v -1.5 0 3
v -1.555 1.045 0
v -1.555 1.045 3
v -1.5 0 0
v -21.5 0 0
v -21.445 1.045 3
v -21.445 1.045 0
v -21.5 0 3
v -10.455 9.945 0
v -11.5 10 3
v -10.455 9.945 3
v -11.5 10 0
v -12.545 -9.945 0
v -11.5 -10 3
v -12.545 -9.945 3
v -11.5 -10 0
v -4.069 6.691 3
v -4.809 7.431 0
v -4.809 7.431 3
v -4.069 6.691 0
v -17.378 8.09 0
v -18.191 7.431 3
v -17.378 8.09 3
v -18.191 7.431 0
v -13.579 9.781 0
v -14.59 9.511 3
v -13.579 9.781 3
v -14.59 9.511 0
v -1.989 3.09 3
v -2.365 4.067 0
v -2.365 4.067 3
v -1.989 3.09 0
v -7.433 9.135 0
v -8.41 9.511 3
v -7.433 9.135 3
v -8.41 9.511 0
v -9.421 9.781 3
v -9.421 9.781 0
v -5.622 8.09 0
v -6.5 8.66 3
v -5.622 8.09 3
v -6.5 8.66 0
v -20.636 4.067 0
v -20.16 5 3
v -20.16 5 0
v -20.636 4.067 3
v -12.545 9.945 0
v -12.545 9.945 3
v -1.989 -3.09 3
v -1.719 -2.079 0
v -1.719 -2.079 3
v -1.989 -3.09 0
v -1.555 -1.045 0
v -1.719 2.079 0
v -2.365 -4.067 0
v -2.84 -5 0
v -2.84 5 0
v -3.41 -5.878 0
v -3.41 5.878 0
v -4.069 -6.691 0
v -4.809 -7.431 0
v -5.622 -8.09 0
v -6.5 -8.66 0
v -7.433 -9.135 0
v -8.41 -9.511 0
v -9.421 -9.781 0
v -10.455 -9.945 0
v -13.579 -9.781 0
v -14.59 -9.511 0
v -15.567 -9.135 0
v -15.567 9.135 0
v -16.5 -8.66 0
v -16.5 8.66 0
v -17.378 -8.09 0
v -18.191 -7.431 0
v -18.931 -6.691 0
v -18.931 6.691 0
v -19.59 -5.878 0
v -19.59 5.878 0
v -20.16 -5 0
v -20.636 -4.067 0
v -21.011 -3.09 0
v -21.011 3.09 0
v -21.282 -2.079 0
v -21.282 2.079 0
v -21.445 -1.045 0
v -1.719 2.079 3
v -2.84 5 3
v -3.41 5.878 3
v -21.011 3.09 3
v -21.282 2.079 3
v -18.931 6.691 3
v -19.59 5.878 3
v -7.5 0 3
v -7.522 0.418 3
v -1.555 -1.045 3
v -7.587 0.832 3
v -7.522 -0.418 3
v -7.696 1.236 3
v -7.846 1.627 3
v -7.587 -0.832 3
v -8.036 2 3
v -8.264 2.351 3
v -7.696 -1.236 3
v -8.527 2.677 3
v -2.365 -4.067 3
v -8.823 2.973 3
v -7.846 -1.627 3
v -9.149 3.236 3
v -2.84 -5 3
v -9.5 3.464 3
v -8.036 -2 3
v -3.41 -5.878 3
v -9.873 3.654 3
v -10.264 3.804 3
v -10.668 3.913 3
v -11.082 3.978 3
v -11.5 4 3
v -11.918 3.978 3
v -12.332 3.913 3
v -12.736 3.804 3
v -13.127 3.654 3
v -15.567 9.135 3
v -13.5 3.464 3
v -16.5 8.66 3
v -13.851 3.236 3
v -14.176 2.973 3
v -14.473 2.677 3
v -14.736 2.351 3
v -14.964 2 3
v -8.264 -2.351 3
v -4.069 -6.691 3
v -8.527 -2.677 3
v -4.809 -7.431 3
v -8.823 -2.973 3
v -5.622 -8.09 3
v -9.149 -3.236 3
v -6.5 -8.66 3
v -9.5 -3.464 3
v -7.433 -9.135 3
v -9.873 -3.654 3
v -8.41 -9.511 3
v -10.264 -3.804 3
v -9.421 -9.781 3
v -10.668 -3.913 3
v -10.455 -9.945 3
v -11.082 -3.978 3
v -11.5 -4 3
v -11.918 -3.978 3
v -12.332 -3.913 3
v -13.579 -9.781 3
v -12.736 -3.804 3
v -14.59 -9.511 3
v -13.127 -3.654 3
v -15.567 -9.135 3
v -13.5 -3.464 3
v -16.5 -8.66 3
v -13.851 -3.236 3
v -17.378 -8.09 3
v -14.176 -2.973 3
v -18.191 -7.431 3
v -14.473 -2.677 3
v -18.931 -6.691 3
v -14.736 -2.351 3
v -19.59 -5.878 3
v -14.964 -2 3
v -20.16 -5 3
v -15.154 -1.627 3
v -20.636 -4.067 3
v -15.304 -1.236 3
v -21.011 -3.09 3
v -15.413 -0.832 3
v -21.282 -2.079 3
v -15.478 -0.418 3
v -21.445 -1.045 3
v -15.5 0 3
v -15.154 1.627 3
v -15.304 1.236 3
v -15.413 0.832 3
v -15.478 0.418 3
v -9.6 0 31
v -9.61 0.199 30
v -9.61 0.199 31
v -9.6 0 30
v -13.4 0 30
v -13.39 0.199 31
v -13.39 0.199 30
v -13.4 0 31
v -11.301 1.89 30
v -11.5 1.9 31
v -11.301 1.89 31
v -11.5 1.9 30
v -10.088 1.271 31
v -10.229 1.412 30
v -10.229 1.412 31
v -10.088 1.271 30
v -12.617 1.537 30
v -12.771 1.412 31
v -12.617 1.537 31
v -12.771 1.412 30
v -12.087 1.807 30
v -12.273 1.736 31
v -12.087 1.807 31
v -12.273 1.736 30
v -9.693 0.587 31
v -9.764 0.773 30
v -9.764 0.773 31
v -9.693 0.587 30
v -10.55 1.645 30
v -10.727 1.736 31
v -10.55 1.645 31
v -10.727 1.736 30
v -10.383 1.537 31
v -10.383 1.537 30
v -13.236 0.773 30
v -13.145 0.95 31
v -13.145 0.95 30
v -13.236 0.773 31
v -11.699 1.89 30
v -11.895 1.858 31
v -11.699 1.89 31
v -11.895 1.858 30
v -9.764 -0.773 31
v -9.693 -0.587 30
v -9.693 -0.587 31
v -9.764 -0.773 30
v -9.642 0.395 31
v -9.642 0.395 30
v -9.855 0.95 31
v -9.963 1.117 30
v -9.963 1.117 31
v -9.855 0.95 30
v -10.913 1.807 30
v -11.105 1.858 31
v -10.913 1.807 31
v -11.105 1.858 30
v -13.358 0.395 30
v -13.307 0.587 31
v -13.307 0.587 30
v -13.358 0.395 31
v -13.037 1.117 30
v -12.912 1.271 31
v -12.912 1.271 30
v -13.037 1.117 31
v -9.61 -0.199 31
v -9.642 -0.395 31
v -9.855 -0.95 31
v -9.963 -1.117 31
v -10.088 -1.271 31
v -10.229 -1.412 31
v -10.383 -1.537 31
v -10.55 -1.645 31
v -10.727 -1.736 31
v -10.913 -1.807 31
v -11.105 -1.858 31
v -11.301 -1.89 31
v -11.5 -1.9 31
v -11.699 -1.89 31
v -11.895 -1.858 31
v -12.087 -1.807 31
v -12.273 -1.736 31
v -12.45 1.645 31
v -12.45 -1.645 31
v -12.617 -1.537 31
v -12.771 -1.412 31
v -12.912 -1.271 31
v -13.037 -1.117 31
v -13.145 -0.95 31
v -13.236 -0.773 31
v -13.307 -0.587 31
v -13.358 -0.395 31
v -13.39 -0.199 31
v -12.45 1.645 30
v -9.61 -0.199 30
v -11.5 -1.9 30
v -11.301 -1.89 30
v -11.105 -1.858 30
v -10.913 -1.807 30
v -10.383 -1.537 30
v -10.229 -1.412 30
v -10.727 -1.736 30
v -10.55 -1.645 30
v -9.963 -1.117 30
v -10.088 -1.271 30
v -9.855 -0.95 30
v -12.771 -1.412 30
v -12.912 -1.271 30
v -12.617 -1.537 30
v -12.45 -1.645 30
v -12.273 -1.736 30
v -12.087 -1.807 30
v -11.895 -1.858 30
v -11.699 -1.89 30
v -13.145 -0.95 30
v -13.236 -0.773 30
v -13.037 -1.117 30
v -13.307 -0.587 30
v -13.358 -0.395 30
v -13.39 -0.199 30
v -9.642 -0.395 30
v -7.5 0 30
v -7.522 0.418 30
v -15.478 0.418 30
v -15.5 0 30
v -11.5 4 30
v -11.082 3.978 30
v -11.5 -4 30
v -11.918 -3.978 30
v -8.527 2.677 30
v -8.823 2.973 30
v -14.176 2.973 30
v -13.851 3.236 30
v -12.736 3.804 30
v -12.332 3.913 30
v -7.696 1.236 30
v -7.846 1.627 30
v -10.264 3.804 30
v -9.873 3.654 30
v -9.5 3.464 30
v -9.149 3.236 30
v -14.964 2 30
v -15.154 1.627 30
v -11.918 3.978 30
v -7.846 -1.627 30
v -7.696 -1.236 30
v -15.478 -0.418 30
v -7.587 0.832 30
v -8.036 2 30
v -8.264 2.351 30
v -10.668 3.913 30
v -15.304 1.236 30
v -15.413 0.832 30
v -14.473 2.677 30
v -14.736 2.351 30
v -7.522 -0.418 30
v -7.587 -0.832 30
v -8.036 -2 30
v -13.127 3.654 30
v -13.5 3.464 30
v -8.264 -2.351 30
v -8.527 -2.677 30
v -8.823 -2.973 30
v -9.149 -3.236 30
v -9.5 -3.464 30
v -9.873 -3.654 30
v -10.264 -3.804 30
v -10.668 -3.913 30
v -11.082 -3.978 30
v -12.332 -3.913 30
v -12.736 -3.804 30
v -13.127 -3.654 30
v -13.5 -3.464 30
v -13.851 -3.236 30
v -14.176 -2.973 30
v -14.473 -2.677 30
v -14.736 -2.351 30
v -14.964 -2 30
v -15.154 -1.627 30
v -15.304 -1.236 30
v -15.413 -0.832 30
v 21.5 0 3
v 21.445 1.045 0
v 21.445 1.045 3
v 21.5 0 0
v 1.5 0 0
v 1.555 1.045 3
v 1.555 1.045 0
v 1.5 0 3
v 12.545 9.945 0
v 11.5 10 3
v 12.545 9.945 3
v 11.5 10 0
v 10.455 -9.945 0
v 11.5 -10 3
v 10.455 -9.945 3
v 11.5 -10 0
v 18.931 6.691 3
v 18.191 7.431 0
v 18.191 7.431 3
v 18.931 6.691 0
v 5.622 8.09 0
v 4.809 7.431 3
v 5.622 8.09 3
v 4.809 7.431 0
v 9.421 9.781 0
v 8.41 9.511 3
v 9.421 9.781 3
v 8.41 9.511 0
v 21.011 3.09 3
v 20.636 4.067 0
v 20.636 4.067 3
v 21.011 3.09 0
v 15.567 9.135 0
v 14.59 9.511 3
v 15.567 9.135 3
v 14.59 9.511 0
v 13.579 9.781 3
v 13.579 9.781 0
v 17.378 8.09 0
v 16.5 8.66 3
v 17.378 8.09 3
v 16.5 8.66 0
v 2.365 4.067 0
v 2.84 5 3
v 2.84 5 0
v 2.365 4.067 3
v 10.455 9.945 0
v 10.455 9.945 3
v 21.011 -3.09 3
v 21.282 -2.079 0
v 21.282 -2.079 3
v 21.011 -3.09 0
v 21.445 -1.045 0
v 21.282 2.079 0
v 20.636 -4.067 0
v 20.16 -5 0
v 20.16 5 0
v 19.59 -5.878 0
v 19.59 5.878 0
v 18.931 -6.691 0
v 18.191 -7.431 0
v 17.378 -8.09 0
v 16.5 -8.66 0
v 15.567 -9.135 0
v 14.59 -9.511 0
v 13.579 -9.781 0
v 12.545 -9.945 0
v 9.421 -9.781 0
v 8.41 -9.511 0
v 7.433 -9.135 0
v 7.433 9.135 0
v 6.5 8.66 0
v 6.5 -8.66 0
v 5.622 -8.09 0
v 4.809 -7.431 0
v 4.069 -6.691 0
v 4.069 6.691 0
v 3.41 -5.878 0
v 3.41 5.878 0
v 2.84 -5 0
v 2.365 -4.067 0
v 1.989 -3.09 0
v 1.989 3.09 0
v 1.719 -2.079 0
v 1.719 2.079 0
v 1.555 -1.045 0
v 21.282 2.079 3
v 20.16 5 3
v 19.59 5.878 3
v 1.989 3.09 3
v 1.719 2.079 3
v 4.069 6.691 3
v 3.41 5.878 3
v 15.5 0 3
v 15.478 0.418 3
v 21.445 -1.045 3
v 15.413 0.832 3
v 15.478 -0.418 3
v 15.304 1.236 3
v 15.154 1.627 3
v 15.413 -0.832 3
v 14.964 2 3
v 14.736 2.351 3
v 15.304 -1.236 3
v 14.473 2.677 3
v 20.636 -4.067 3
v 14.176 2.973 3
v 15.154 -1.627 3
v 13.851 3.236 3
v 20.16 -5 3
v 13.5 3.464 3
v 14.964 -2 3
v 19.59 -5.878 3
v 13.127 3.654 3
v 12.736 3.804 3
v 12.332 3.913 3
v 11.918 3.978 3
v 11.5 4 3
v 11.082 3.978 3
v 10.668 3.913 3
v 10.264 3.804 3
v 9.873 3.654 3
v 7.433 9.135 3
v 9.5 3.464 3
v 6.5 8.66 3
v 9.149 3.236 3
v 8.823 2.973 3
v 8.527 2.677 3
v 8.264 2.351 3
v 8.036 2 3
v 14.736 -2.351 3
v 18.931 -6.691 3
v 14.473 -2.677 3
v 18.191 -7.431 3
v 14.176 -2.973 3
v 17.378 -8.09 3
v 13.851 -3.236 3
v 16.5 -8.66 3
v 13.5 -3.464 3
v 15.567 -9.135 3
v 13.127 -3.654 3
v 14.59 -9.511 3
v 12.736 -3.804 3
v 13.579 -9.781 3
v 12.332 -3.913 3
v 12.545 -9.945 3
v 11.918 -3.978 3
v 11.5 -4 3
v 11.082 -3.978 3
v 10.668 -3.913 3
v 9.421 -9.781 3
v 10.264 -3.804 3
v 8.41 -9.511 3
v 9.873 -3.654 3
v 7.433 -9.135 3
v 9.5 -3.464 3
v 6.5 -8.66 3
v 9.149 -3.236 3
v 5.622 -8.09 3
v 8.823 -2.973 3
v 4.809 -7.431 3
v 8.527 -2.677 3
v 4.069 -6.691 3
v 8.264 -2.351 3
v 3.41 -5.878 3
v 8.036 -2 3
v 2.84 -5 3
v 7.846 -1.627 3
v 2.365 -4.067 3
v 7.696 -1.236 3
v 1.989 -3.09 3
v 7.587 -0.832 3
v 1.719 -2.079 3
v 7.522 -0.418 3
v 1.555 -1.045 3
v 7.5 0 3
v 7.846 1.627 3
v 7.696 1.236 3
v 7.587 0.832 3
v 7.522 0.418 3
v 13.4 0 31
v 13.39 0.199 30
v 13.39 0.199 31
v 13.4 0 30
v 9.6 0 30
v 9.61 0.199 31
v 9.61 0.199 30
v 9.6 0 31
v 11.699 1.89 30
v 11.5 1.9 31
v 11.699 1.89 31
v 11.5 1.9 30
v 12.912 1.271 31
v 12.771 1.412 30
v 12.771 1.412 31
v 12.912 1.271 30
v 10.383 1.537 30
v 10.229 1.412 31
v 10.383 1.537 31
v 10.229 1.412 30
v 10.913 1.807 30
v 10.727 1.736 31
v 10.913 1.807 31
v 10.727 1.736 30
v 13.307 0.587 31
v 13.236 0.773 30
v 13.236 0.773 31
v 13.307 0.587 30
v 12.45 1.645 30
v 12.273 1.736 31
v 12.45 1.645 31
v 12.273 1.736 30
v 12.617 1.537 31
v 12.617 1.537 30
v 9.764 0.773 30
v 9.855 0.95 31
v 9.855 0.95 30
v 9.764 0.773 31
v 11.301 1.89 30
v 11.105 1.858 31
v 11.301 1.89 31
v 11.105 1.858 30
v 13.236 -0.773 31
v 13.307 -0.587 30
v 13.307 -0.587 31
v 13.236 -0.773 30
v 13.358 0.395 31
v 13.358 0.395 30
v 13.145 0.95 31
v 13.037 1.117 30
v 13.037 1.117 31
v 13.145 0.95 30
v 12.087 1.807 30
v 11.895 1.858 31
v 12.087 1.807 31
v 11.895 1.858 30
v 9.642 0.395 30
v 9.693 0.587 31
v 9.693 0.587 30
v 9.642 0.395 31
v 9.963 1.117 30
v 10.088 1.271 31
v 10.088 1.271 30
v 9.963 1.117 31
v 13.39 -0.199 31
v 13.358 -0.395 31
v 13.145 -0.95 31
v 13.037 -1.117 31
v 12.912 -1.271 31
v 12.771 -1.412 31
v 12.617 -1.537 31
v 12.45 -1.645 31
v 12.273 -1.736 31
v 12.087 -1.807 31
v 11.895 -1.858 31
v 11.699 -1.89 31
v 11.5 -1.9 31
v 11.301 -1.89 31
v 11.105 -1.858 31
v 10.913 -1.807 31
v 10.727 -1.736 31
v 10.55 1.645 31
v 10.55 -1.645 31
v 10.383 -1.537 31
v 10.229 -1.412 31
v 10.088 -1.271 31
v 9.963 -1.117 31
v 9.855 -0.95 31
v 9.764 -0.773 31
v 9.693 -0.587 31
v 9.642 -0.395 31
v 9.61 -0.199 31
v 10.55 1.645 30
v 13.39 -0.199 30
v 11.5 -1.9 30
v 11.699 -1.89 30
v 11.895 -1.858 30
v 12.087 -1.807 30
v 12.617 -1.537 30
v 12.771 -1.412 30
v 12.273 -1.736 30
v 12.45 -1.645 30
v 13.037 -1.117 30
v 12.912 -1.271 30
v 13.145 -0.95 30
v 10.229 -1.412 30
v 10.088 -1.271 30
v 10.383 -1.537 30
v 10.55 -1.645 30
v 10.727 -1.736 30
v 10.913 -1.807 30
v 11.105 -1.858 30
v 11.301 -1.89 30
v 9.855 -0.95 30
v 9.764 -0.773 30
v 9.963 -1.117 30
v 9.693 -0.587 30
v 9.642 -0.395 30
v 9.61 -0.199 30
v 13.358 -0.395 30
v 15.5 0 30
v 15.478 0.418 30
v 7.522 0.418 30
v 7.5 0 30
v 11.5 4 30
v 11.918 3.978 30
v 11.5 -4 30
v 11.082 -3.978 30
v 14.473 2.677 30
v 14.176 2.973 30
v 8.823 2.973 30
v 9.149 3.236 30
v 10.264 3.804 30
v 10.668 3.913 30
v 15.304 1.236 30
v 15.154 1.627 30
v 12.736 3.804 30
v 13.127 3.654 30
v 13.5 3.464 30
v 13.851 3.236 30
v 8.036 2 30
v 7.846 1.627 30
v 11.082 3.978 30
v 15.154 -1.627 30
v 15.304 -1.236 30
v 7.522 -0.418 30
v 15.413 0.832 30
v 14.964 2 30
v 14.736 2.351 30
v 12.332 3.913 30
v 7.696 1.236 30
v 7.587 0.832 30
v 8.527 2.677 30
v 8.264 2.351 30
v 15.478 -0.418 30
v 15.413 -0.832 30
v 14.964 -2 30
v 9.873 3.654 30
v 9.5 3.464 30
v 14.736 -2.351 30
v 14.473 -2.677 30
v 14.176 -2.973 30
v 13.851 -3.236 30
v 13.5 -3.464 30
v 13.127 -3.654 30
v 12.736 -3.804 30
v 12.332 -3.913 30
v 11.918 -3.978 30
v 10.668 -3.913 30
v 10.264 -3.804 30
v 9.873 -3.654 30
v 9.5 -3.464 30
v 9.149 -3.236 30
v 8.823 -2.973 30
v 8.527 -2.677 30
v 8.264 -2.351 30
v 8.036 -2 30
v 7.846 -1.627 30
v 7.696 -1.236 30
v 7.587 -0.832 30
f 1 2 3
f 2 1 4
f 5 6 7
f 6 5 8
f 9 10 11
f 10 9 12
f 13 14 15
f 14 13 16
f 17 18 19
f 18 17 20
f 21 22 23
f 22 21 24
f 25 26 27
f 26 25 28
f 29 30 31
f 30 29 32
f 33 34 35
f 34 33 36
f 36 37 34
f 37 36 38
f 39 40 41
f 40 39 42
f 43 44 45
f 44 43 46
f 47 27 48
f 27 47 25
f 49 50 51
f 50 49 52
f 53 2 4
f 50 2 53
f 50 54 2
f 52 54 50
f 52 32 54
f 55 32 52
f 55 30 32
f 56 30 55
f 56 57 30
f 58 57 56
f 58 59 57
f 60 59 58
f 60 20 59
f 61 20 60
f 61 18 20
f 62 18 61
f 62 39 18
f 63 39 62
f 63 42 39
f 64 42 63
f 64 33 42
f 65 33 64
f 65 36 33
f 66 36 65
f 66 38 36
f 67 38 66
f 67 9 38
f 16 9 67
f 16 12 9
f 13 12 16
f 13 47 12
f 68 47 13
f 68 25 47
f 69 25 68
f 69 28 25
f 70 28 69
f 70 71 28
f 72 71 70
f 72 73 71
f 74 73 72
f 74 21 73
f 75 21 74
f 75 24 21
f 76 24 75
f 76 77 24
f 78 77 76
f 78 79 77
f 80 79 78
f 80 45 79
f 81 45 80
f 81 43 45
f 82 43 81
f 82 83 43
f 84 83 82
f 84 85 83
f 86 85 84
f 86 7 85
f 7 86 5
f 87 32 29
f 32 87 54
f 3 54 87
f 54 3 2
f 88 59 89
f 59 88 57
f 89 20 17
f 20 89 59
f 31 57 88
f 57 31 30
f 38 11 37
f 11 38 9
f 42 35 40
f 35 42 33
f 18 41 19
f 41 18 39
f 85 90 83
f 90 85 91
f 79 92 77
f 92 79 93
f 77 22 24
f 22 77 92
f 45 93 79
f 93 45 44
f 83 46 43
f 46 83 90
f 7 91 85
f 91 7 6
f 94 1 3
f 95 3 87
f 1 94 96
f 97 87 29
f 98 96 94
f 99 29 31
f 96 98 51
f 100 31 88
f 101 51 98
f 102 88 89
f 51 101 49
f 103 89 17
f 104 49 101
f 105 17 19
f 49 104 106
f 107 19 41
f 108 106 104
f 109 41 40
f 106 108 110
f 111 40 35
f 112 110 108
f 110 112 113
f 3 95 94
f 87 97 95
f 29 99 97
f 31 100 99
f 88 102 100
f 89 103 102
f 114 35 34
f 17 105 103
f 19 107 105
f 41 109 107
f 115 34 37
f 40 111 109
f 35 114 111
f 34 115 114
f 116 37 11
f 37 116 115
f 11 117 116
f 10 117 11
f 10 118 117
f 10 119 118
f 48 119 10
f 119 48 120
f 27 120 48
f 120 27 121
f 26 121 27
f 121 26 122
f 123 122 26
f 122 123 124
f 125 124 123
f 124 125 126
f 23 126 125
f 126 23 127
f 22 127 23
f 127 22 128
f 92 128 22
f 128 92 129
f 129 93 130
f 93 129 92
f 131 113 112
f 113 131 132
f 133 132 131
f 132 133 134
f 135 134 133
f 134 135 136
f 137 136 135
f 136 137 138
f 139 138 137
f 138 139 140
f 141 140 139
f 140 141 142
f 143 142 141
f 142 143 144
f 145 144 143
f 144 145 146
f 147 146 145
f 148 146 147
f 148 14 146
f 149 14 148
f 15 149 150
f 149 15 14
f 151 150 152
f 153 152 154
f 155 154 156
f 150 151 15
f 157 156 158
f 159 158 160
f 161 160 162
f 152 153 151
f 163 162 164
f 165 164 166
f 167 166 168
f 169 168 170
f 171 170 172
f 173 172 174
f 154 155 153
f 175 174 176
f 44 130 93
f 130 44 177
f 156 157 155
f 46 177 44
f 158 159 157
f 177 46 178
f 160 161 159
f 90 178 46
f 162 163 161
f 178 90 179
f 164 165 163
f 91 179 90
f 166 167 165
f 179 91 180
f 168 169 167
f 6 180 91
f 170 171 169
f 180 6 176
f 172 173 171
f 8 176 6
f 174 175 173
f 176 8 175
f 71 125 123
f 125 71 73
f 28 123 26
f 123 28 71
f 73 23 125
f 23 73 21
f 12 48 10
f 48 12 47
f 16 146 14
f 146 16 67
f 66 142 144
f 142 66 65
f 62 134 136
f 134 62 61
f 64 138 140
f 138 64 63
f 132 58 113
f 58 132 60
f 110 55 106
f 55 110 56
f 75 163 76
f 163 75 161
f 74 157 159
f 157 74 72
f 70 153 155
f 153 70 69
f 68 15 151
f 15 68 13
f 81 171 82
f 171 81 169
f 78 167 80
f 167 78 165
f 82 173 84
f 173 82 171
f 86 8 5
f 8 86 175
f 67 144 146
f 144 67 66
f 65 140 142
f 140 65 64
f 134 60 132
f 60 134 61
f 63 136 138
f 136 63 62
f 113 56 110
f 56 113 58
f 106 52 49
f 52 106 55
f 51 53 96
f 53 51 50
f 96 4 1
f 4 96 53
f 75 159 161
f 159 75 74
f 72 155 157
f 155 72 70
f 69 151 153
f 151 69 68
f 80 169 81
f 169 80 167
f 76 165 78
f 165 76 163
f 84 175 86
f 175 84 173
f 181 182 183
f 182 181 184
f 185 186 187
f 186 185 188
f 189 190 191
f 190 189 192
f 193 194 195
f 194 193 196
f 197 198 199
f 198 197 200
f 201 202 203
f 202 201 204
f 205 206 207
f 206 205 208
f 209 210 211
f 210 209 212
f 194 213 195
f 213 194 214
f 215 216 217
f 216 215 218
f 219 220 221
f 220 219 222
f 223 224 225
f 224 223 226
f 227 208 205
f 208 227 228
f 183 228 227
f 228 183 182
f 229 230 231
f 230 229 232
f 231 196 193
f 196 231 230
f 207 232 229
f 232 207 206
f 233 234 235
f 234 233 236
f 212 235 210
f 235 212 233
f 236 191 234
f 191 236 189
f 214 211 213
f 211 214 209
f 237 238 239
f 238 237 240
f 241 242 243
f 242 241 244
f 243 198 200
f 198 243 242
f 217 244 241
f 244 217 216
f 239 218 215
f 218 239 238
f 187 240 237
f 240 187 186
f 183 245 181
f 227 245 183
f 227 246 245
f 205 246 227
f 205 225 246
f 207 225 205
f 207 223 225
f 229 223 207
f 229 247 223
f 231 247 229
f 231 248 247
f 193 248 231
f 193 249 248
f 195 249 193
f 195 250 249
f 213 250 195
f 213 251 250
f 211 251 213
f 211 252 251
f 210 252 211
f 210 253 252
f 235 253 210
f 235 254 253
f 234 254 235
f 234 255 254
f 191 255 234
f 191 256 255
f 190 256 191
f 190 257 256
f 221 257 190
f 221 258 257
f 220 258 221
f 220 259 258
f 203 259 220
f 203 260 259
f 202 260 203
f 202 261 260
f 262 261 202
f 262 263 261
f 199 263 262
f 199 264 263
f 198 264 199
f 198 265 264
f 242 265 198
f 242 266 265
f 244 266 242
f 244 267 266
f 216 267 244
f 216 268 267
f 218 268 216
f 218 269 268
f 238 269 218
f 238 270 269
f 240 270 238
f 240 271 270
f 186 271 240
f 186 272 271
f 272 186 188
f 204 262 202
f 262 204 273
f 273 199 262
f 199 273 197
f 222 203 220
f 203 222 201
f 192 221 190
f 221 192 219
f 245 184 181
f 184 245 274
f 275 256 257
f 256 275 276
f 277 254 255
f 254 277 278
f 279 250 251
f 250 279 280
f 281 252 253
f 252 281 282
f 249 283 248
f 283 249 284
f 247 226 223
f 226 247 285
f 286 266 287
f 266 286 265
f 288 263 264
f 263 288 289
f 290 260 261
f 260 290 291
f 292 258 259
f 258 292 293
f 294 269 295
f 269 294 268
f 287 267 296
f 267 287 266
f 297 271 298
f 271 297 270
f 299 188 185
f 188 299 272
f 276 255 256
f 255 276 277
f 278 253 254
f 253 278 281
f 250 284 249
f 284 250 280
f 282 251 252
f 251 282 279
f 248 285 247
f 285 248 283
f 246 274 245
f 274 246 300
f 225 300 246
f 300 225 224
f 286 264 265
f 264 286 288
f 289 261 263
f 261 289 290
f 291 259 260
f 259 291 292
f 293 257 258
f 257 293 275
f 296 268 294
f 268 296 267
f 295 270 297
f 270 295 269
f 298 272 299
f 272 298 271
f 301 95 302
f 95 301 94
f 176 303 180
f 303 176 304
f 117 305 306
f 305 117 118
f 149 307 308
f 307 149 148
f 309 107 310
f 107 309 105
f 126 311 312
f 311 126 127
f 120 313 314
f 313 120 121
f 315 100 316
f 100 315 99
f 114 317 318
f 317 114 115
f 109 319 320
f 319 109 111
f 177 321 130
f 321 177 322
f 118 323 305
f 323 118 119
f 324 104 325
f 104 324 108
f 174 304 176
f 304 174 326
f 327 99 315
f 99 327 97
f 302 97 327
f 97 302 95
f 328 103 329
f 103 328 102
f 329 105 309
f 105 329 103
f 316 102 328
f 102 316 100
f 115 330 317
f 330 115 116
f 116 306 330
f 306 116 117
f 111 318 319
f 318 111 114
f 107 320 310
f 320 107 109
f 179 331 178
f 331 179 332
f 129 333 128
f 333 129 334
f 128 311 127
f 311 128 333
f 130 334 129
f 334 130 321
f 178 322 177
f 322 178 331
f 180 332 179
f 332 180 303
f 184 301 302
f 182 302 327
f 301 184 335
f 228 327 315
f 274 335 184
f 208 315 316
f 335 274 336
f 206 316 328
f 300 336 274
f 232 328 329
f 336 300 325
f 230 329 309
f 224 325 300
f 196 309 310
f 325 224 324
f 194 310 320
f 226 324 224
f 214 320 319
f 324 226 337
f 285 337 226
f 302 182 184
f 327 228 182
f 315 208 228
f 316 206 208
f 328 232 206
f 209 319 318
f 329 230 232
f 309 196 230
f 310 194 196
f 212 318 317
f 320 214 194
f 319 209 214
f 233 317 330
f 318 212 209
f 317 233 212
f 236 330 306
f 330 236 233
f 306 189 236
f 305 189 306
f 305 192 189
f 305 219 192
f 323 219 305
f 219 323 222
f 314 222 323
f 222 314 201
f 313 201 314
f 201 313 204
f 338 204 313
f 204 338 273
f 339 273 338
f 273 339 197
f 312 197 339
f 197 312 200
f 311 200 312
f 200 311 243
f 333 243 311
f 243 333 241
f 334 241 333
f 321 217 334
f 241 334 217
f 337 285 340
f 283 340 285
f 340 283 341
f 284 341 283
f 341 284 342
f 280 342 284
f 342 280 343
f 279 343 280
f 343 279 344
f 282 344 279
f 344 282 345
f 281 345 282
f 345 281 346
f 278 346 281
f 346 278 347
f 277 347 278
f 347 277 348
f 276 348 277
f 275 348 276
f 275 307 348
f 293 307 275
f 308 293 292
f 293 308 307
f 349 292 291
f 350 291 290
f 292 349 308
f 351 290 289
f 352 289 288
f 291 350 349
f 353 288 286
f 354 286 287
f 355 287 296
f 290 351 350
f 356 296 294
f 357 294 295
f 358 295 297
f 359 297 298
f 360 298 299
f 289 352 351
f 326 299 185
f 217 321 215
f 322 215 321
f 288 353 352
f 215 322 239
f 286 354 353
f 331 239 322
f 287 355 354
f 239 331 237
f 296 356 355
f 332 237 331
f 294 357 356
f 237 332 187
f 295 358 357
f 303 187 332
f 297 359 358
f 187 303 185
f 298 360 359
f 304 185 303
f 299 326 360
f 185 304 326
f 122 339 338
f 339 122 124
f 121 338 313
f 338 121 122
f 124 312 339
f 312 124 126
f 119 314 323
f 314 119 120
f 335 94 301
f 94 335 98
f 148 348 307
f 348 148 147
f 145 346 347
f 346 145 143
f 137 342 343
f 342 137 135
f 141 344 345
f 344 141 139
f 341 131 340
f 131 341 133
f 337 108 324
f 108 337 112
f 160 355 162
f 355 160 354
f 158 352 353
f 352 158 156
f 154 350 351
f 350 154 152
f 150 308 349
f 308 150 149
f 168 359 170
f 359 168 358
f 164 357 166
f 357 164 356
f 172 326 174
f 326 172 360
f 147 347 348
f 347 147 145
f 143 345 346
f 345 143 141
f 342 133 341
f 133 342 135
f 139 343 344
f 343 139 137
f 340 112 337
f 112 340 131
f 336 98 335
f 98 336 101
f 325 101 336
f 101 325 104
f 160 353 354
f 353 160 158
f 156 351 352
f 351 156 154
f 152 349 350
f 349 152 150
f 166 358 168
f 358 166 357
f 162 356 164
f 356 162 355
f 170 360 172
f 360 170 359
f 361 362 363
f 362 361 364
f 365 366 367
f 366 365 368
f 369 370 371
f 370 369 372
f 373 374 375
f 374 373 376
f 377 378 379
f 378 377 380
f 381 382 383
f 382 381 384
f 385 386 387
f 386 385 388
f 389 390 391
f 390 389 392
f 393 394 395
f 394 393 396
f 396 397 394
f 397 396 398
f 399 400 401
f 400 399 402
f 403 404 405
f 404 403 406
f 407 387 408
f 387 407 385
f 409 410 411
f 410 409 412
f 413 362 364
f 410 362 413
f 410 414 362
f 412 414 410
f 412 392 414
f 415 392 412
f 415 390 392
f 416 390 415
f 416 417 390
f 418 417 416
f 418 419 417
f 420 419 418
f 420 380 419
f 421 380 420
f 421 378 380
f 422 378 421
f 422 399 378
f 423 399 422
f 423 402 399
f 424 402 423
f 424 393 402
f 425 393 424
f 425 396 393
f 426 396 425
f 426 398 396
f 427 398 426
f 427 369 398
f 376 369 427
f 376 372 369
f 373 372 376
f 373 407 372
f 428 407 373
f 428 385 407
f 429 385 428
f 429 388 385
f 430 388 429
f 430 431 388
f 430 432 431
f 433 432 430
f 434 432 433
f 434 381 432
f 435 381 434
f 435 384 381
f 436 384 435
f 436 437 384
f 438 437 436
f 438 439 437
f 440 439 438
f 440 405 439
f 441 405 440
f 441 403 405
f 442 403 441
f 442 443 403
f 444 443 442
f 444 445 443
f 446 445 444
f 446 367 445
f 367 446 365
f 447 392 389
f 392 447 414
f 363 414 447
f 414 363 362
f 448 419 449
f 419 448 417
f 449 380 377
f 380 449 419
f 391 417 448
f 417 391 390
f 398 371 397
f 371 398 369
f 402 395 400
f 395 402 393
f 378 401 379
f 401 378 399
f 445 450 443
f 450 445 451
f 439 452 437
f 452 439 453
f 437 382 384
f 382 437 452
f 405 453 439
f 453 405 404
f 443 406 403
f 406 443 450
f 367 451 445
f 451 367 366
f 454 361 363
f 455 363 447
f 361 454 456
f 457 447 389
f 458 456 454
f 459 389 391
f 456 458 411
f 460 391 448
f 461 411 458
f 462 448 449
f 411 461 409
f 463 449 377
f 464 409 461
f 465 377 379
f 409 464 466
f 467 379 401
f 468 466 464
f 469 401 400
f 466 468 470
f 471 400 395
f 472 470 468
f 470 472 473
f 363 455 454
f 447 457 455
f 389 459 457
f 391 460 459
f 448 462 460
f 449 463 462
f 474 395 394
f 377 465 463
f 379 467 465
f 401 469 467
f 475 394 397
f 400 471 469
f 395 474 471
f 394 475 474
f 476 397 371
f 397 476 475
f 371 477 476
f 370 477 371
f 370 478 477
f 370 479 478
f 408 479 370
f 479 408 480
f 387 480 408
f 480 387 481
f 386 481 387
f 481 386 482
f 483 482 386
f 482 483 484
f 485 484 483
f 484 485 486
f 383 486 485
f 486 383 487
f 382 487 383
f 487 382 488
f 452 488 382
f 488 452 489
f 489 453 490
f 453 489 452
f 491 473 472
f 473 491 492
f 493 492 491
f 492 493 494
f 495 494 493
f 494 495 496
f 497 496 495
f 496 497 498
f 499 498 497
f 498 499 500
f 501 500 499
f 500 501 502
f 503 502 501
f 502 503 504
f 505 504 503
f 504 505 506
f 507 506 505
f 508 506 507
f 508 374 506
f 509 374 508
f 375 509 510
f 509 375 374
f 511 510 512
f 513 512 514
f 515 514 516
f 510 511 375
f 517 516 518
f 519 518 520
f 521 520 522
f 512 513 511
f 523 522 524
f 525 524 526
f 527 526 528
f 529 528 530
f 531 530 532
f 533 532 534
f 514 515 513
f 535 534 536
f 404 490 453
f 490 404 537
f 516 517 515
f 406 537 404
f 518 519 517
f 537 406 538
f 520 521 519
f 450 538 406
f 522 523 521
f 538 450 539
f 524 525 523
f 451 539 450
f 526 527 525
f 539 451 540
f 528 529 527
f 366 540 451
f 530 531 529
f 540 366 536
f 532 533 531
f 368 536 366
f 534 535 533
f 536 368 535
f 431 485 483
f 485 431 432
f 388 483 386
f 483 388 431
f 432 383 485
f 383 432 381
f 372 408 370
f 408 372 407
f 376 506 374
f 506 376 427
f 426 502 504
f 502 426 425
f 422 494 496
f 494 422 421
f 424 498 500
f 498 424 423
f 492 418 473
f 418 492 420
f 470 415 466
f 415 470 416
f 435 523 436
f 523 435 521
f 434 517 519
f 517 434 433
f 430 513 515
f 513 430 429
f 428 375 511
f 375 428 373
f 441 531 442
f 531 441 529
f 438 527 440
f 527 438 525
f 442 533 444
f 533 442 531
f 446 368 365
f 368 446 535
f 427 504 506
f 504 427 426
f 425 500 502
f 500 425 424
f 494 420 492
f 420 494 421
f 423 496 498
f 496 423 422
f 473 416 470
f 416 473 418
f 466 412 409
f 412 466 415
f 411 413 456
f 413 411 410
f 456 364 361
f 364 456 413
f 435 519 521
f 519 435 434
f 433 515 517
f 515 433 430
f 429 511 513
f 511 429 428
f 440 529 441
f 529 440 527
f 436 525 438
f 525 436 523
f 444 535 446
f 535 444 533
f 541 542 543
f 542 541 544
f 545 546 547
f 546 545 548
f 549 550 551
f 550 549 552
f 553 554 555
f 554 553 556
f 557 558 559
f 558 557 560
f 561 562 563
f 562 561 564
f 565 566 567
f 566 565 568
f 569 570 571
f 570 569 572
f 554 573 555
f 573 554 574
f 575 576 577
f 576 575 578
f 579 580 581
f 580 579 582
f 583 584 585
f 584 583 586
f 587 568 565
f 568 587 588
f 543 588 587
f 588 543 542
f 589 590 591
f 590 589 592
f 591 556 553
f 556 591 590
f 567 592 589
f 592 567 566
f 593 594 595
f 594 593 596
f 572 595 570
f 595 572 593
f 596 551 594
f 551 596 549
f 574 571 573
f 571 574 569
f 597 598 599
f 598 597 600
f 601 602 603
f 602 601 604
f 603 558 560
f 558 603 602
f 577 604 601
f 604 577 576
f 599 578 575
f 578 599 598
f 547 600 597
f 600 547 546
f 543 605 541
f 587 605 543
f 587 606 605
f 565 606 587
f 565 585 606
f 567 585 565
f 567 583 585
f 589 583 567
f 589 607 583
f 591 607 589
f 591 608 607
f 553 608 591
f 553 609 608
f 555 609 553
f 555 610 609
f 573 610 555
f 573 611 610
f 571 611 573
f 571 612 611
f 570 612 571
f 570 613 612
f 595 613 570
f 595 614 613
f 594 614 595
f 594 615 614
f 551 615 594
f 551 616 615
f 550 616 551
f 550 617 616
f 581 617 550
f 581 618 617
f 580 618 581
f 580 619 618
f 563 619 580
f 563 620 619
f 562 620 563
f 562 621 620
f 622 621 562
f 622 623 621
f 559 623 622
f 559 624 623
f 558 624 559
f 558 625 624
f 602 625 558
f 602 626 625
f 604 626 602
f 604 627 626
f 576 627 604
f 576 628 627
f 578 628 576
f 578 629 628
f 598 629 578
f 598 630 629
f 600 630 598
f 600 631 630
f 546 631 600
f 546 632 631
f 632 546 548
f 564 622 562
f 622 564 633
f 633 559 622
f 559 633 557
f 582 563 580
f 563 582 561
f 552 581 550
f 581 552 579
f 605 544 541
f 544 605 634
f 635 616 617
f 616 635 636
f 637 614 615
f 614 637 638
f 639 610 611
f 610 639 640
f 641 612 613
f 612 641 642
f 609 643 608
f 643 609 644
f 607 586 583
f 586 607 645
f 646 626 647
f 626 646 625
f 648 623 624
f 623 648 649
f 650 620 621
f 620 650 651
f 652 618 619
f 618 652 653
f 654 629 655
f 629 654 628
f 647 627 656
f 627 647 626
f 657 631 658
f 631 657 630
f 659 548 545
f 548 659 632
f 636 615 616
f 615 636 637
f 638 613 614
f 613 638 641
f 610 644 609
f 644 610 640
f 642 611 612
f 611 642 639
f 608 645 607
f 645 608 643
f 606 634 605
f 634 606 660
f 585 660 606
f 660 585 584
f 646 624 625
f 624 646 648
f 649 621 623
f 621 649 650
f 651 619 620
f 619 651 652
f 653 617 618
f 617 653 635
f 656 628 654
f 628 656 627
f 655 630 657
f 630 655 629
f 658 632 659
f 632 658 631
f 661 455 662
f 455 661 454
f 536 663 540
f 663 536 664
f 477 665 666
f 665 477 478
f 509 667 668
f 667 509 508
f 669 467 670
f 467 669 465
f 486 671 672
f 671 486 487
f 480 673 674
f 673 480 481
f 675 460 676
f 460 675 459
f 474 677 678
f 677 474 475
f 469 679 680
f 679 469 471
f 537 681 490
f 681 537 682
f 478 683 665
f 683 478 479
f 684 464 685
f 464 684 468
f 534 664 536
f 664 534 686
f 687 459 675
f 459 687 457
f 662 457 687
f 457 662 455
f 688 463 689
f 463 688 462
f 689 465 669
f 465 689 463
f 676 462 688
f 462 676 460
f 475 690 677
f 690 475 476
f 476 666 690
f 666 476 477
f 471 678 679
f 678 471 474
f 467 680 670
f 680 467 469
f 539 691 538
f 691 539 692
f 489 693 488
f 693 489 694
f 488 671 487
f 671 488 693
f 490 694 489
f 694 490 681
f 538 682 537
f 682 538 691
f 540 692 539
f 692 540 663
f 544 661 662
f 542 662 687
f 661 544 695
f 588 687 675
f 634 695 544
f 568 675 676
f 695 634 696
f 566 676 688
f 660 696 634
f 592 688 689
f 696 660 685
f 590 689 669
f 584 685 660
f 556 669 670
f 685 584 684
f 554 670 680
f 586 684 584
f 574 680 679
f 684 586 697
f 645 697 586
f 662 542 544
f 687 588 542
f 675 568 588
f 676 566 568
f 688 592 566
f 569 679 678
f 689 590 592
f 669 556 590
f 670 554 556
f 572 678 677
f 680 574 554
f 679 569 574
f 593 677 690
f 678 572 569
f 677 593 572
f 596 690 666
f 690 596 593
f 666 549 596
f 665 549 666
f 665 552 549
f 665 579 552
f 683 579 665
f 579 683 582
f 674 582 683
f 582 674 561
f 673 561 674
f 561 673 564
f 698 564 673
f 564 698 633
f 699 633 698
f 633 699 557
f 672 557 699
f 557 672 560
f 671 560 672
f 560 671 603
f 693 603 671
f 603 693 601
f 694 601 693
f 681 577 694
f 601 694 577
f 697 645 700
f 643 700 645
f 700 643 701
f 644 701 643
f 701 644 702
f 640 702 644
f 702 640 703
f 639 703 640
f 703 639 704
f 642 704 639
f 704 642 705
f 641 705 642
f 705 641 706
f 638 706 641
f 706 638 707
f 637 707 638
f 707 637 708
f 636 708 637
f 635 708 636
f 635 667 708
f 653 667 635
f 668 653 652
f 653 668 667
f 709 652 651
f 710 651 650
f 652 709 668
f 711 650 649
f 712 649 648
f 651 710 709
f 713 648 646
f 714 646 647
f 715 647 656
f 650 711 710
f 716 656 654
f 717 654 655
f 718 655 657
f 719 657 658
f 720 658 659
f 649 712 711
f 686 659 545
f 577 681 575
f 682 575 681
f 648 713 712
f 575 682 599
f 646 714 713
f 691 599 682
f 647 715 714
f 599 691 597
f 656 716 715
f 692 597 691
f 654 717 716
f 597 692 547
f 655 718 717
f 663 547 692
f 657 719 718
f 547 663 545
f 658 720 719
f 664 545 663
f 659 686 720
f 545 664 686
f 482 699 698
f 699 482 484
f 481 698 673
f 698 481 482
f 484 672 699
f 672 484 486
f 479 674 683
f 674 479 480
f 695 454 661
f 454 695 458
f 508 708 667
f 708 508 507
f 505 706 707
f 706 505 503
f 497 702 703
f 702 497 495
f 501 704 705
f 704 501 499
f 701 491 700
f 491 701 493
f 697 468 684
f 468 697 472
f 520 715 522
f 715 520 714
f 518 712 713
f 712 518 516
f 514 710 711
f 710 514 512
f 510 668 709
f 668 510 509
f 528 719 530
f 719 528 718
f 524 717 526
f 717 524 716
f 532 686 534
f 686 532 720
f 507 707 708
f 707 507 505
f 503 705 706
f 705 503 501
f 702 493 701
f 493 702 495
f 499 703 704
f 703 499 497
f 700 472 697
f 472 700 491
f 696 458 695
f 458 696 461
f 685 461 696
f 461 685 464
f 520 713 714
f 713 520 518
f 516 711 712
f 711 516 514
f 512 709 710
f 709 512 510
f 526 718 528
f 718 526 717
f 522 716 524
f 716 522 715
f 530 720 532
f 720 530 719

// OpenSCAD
$fn = 60;

W = 20;
L = 30;
gap = 3;

module tool() {
    cylinder(h=3, d=W);
    cylinder(h=L+1, d=3.8);
    cylinder(h=L, d=8);
};

translate([-W/2 - gap/2, 0, 0]) tool();
translate([+W/2 + gap/2, 0, 0]) tool();
